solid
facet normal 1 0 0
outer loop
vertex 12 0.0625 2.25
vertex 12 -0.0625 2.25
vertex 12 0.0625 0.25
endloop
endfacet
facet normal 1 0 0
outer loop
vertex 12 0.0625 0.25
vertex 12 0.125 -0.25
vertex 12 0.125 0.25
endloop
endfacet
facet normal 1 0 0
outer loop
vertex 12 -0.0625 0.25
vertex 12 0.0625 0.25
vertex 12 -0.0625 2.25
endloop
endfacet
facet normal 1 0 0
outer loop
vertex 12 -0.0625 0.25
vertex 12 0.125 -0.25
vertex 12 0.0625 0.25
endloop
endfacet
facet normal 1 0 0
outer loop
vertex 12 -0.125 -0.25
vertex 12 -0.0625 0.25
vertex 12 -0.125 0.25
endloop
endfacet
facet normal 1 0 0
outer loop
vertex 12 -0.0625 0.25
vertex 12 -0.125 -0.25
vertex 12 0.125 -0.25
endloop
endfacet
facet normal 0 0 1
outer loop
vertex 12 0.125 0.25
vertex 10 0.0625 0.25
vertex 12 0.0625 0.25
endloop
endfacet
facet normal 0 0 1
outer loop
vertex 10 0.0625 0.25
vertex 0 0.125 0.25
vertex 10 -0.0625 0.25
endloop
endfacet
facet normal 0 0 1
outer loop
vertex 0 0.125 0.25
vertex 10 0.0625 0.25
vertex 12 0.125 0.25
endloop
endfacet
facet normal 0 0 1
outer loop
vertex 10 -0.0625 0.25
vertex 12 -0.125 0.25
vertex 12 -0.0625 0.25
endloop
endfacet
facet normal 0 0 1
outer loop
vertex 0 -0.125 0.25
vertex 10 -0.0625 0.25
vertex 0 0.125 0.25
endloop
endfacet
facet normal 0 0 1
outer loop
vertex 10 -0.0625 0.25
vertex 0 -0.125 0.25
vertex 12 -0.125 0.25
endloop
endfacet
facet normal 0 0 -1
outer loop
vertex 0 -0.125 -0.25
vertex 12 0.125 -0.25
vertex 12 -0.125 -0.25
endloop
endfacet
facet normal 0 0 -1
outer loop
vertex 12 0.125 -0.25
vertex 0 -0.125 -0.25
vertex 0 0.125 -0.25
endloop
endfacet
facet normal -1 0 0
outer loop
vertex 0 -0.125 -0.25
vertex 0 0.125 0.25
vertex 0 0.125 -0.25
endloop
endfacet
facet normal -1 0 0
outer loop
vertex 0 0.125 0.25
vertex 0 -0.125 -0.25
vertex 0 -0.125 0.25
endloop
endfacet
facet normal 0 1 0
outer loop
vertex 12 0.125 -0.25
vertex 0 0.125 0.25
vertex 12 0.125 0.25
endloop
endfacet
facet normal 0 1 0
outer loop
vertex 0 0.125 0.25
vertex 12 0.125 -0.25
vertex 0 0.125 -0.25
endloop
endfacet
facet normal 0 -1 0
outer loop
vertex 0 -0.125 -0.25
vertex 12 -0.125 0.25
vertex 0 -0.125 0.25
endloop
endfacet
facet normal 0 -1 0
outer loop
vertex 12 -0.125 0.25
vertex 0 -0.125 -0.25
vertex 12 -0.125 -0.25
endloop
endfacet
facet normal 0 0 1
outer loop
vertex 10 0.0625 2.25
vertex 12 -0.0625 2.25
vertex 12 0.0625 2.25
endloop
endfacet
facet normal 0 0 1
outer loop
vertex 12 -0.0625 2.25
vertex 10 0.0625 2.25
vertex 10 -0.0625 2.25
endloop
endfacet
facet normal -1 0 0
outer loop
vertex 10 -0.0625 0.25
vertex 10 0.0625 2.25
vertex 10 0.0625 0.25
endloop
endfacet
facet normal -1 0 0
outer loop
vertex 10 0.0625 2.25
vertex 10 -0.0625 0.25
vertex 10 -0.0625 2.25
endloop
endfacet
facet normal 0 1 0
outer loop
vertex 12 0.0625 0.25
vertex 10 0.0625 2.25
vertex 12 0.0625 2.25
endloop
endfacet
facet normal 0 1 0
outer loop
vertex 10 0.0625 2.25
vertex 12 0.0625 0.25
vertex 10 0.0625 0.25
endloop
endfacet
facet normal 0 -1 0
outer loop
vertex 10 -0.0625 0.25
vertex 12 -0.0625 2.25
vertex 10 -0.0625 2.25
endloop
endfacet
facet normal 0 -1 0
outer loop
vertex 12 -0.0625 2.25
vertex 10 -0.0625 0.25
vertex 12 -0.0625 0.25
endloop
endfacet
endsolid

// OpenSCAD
// file: stick/stick.scad
module stick() {
  translate([0,-1/8,-1/4])
  cube([12,1/4,1/2]);
}

stick();
// file: rudder/rudder.scad
module rudder() {
  translate([0,-1/16, 0])
  cube([2,1/8,2]);
}

rudder();
// main file
use <rudder/rudder.scad>
use <stick/stick.scad>

module body() {
  union() {
    stick();
      translate([10,0,1/4])
	rudder();
  }
}
  
body();
